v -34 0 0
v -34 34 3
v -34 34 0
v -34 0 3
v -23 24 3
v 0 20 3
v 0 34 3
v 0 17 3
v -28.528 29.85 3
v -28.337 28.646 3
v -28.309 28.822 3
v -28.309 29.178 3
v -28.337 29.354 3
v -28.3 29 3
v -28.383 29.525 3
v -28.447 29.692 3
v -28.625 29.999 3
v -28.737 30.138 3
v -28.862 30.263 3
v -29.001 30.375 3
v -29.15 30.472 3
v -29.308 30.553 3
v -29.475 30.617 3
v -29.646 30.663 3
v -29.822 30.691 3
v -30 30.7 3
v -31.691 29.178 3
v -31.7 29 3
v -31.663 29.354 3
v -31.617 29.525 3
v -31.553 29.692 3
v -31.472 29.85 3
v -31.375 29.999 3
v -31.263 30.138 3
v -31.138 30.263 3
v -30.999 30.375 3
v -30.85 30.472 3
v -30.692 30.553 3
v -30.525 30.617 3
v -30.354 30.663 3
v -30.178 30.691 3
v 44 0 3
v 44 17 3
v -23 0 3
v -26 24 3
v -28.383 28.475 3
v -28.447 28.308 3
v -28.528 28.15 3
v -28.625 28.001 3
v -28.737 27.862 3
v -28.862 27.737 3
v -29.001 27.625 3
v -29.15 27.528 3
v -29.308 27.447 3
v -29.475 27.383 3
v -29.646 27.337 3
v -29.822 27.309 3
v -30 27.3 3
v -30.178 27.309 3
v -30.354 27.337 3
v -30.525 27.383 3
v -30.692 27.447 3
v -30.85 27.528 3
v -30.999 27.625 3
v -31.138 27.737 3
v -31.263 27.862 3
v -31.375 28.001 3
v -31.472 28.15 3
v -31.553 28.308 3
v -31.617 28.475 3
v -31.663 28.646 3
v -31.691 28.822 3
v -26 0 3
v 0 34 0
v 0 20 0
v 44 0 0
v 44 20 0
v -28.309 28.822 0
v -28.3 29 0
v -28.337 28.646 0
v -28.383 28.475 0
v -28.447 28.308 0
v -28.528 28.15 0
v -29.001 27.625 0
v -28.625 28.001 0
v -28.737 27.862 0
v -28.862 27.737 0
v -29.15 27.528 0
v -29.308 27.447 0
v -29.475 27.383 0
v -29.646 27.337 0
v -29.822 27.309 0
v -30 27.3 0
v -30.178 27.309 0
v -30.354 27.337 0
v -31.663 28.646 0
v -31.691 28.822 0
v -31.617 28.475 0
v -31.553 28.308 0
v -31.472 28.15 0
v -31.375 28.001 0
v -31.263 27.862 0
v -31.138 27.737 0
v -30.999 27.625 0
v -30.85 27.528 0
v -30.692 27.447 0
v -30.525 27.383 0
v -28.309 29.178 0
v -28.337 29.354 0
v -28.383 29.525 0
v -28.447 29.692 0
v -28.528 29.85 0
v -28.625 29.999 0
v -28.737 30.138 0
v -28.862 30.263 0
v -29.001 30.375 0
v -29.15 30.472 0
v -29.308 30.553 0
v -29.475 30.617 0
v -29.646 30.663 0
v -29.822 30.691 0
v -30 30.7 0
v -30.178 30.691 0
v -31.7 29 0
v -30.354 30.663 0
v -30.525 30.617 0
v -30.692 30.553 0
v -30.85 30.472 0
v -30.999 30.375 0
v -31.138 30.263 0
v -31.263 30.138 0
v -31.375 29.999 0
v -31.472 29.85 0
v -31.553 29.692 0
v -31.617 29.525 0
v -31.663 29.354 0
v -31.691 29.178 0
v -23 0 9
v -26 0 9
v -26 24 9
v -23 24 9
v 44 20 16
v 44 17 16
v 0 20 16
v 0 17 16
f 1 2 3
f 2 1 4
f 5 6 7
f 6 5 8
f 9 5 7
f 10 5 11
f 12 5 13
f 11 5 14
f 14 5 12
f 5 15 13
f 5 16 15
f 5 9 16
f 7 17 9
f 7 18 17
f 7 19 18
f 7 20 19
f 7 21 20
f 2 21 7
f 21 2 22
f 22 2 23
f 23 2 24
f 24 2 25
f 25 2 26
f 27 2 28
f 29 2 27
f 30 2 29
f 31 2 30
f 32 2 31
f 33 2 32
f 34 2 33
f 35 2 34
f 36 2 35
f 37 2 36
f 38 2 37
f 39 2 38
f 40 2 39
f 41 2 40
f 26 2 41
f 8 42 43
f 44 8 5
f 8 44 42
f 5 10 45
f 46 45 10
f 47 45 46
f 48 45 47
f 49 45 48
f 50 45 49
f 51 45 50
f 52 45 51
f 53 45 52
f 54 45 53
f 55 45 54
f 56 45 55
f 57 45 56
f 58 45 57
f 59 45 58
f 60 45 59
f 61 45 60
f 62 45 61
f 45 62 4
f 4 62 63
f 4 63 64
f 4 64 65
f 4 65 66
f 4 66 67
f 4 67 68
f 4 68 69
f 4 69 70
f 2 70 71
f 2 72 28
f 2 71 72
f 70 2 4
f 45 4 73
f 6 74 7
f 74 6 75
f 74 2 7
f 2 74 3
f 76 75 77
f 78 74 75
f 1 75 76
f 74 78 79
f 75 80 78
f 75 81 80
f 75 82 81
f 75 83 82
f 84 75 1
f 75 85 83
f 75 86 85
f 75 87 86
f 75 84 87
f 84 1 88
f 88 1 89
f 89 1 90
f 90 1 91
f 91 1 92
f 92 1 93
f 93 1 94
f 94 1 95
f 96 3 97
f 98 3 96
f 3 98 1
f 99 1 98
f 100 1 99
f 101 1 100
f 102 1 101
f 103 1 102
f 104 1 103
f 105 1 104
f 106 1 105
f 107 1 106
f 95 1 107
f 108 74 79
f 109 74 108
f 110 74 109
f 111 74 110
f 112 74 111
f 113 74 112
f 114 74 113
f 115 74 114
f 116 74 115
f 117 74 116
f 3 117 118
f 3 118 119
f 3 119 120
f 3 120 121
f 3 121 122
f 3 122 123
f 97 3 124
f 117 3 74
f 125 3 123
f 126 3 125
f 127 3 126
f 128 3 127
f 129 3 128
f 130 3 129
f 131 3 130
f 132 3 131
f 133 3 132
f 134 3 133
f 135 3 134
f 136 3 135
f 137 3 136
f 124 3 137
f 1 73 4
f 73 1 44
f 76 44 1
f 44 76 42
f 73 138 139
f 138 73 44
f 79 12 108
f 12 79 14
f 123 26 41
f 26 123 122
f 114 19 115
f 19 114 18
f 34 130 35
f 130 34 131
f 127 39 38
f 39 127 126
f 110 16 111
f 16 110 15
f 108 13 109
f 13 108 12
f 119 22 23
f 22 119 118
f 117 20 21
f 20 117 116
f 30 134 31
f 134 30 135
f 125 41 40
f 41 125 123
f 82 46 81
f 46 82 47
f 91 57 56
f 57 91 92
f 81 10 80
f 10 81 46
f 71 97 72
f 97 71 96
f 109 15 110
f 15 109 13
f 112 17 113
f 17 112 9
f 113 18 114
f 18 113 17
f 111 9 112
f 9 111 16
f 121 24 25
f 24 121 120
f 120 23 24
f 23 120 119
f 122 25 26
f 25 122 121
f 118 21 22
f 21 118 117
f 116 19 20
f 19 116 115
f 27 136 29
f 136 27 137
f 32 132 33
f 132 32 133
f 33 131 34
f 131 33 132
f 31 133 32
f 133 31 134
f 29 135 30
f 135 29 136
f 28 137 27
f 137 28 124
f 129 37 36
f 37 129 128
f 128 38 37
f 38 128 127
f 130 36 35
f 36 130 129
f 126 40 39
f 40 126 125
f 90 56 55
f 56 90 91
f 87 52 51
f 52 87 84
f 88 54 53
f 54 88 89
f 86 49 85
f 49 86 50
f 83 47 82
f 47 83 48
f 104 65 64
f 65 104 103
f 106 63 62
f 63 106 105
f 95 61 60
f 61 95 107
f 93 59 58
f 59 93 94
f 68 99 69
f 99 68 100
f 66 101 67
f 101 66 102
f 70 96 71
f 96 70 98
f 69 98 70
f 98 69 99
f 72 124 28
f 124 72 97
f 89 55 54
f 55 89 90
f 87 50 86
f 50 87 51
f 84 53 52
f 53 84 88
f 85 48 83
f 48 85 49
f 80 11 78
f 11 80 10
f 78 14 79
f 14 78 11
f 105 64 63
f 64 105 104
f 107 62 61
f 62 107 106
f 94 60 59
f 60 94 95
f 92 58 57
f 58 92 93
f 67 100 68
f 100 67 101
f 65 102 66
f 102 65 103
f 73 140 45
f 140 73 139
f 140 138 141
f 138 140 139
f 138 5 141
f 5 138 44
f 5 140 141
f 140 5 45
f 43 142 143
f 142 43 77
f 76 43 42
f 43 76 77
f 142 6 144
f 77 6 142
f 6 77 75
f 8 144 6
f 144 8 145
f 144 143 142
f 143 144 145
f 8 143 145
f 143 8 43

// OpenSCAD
$fn = 60;

t = 3;
/*
wbox = 336;

d1 = 3.6;

dm = 68;

w = t + d1 / 2 + dm + d1 / 2 + t;
l = d1 + 4;

depth = 60;
*/

w = 26 + 4 + 4;


translate([-w, 0, 0]) {
	  difference() {
			cube ([w, 34, t]);
			translate([4,20 + 19 - 10,0]) cylinder(h = t, d = 3.4);
	  }
	  translate([4 + 4, 0, 0]) cube ([t, 24, t + 6]);
}

cube ([44, 20, t]);
translate([0, 20 - t, 0]) cube ([44, t, 16]);

/*
cube ([wbox / 2, 8, t]);

cube ([20, t, 12]);
translate([wbox/2 - 20, 0, 0]) cube ([20, t, 12]);

translate([wbox/2 - w/2 + t, t + depth, 0]) difference() {
	  cube ([w, l, t]);
	  
	  // mounting holes
	  translate([w/2 - dm/2, l/2, 0]) cylinder(h = t * 2, d = d1);
	  translate([w/2 + dm/2, l/2, 0]) cylinder(h = t * 2, d = d1);
}

translate([wbox/2 - 8/2 + t, 0, 0]) cube([8, t + depth, t]);
*/
